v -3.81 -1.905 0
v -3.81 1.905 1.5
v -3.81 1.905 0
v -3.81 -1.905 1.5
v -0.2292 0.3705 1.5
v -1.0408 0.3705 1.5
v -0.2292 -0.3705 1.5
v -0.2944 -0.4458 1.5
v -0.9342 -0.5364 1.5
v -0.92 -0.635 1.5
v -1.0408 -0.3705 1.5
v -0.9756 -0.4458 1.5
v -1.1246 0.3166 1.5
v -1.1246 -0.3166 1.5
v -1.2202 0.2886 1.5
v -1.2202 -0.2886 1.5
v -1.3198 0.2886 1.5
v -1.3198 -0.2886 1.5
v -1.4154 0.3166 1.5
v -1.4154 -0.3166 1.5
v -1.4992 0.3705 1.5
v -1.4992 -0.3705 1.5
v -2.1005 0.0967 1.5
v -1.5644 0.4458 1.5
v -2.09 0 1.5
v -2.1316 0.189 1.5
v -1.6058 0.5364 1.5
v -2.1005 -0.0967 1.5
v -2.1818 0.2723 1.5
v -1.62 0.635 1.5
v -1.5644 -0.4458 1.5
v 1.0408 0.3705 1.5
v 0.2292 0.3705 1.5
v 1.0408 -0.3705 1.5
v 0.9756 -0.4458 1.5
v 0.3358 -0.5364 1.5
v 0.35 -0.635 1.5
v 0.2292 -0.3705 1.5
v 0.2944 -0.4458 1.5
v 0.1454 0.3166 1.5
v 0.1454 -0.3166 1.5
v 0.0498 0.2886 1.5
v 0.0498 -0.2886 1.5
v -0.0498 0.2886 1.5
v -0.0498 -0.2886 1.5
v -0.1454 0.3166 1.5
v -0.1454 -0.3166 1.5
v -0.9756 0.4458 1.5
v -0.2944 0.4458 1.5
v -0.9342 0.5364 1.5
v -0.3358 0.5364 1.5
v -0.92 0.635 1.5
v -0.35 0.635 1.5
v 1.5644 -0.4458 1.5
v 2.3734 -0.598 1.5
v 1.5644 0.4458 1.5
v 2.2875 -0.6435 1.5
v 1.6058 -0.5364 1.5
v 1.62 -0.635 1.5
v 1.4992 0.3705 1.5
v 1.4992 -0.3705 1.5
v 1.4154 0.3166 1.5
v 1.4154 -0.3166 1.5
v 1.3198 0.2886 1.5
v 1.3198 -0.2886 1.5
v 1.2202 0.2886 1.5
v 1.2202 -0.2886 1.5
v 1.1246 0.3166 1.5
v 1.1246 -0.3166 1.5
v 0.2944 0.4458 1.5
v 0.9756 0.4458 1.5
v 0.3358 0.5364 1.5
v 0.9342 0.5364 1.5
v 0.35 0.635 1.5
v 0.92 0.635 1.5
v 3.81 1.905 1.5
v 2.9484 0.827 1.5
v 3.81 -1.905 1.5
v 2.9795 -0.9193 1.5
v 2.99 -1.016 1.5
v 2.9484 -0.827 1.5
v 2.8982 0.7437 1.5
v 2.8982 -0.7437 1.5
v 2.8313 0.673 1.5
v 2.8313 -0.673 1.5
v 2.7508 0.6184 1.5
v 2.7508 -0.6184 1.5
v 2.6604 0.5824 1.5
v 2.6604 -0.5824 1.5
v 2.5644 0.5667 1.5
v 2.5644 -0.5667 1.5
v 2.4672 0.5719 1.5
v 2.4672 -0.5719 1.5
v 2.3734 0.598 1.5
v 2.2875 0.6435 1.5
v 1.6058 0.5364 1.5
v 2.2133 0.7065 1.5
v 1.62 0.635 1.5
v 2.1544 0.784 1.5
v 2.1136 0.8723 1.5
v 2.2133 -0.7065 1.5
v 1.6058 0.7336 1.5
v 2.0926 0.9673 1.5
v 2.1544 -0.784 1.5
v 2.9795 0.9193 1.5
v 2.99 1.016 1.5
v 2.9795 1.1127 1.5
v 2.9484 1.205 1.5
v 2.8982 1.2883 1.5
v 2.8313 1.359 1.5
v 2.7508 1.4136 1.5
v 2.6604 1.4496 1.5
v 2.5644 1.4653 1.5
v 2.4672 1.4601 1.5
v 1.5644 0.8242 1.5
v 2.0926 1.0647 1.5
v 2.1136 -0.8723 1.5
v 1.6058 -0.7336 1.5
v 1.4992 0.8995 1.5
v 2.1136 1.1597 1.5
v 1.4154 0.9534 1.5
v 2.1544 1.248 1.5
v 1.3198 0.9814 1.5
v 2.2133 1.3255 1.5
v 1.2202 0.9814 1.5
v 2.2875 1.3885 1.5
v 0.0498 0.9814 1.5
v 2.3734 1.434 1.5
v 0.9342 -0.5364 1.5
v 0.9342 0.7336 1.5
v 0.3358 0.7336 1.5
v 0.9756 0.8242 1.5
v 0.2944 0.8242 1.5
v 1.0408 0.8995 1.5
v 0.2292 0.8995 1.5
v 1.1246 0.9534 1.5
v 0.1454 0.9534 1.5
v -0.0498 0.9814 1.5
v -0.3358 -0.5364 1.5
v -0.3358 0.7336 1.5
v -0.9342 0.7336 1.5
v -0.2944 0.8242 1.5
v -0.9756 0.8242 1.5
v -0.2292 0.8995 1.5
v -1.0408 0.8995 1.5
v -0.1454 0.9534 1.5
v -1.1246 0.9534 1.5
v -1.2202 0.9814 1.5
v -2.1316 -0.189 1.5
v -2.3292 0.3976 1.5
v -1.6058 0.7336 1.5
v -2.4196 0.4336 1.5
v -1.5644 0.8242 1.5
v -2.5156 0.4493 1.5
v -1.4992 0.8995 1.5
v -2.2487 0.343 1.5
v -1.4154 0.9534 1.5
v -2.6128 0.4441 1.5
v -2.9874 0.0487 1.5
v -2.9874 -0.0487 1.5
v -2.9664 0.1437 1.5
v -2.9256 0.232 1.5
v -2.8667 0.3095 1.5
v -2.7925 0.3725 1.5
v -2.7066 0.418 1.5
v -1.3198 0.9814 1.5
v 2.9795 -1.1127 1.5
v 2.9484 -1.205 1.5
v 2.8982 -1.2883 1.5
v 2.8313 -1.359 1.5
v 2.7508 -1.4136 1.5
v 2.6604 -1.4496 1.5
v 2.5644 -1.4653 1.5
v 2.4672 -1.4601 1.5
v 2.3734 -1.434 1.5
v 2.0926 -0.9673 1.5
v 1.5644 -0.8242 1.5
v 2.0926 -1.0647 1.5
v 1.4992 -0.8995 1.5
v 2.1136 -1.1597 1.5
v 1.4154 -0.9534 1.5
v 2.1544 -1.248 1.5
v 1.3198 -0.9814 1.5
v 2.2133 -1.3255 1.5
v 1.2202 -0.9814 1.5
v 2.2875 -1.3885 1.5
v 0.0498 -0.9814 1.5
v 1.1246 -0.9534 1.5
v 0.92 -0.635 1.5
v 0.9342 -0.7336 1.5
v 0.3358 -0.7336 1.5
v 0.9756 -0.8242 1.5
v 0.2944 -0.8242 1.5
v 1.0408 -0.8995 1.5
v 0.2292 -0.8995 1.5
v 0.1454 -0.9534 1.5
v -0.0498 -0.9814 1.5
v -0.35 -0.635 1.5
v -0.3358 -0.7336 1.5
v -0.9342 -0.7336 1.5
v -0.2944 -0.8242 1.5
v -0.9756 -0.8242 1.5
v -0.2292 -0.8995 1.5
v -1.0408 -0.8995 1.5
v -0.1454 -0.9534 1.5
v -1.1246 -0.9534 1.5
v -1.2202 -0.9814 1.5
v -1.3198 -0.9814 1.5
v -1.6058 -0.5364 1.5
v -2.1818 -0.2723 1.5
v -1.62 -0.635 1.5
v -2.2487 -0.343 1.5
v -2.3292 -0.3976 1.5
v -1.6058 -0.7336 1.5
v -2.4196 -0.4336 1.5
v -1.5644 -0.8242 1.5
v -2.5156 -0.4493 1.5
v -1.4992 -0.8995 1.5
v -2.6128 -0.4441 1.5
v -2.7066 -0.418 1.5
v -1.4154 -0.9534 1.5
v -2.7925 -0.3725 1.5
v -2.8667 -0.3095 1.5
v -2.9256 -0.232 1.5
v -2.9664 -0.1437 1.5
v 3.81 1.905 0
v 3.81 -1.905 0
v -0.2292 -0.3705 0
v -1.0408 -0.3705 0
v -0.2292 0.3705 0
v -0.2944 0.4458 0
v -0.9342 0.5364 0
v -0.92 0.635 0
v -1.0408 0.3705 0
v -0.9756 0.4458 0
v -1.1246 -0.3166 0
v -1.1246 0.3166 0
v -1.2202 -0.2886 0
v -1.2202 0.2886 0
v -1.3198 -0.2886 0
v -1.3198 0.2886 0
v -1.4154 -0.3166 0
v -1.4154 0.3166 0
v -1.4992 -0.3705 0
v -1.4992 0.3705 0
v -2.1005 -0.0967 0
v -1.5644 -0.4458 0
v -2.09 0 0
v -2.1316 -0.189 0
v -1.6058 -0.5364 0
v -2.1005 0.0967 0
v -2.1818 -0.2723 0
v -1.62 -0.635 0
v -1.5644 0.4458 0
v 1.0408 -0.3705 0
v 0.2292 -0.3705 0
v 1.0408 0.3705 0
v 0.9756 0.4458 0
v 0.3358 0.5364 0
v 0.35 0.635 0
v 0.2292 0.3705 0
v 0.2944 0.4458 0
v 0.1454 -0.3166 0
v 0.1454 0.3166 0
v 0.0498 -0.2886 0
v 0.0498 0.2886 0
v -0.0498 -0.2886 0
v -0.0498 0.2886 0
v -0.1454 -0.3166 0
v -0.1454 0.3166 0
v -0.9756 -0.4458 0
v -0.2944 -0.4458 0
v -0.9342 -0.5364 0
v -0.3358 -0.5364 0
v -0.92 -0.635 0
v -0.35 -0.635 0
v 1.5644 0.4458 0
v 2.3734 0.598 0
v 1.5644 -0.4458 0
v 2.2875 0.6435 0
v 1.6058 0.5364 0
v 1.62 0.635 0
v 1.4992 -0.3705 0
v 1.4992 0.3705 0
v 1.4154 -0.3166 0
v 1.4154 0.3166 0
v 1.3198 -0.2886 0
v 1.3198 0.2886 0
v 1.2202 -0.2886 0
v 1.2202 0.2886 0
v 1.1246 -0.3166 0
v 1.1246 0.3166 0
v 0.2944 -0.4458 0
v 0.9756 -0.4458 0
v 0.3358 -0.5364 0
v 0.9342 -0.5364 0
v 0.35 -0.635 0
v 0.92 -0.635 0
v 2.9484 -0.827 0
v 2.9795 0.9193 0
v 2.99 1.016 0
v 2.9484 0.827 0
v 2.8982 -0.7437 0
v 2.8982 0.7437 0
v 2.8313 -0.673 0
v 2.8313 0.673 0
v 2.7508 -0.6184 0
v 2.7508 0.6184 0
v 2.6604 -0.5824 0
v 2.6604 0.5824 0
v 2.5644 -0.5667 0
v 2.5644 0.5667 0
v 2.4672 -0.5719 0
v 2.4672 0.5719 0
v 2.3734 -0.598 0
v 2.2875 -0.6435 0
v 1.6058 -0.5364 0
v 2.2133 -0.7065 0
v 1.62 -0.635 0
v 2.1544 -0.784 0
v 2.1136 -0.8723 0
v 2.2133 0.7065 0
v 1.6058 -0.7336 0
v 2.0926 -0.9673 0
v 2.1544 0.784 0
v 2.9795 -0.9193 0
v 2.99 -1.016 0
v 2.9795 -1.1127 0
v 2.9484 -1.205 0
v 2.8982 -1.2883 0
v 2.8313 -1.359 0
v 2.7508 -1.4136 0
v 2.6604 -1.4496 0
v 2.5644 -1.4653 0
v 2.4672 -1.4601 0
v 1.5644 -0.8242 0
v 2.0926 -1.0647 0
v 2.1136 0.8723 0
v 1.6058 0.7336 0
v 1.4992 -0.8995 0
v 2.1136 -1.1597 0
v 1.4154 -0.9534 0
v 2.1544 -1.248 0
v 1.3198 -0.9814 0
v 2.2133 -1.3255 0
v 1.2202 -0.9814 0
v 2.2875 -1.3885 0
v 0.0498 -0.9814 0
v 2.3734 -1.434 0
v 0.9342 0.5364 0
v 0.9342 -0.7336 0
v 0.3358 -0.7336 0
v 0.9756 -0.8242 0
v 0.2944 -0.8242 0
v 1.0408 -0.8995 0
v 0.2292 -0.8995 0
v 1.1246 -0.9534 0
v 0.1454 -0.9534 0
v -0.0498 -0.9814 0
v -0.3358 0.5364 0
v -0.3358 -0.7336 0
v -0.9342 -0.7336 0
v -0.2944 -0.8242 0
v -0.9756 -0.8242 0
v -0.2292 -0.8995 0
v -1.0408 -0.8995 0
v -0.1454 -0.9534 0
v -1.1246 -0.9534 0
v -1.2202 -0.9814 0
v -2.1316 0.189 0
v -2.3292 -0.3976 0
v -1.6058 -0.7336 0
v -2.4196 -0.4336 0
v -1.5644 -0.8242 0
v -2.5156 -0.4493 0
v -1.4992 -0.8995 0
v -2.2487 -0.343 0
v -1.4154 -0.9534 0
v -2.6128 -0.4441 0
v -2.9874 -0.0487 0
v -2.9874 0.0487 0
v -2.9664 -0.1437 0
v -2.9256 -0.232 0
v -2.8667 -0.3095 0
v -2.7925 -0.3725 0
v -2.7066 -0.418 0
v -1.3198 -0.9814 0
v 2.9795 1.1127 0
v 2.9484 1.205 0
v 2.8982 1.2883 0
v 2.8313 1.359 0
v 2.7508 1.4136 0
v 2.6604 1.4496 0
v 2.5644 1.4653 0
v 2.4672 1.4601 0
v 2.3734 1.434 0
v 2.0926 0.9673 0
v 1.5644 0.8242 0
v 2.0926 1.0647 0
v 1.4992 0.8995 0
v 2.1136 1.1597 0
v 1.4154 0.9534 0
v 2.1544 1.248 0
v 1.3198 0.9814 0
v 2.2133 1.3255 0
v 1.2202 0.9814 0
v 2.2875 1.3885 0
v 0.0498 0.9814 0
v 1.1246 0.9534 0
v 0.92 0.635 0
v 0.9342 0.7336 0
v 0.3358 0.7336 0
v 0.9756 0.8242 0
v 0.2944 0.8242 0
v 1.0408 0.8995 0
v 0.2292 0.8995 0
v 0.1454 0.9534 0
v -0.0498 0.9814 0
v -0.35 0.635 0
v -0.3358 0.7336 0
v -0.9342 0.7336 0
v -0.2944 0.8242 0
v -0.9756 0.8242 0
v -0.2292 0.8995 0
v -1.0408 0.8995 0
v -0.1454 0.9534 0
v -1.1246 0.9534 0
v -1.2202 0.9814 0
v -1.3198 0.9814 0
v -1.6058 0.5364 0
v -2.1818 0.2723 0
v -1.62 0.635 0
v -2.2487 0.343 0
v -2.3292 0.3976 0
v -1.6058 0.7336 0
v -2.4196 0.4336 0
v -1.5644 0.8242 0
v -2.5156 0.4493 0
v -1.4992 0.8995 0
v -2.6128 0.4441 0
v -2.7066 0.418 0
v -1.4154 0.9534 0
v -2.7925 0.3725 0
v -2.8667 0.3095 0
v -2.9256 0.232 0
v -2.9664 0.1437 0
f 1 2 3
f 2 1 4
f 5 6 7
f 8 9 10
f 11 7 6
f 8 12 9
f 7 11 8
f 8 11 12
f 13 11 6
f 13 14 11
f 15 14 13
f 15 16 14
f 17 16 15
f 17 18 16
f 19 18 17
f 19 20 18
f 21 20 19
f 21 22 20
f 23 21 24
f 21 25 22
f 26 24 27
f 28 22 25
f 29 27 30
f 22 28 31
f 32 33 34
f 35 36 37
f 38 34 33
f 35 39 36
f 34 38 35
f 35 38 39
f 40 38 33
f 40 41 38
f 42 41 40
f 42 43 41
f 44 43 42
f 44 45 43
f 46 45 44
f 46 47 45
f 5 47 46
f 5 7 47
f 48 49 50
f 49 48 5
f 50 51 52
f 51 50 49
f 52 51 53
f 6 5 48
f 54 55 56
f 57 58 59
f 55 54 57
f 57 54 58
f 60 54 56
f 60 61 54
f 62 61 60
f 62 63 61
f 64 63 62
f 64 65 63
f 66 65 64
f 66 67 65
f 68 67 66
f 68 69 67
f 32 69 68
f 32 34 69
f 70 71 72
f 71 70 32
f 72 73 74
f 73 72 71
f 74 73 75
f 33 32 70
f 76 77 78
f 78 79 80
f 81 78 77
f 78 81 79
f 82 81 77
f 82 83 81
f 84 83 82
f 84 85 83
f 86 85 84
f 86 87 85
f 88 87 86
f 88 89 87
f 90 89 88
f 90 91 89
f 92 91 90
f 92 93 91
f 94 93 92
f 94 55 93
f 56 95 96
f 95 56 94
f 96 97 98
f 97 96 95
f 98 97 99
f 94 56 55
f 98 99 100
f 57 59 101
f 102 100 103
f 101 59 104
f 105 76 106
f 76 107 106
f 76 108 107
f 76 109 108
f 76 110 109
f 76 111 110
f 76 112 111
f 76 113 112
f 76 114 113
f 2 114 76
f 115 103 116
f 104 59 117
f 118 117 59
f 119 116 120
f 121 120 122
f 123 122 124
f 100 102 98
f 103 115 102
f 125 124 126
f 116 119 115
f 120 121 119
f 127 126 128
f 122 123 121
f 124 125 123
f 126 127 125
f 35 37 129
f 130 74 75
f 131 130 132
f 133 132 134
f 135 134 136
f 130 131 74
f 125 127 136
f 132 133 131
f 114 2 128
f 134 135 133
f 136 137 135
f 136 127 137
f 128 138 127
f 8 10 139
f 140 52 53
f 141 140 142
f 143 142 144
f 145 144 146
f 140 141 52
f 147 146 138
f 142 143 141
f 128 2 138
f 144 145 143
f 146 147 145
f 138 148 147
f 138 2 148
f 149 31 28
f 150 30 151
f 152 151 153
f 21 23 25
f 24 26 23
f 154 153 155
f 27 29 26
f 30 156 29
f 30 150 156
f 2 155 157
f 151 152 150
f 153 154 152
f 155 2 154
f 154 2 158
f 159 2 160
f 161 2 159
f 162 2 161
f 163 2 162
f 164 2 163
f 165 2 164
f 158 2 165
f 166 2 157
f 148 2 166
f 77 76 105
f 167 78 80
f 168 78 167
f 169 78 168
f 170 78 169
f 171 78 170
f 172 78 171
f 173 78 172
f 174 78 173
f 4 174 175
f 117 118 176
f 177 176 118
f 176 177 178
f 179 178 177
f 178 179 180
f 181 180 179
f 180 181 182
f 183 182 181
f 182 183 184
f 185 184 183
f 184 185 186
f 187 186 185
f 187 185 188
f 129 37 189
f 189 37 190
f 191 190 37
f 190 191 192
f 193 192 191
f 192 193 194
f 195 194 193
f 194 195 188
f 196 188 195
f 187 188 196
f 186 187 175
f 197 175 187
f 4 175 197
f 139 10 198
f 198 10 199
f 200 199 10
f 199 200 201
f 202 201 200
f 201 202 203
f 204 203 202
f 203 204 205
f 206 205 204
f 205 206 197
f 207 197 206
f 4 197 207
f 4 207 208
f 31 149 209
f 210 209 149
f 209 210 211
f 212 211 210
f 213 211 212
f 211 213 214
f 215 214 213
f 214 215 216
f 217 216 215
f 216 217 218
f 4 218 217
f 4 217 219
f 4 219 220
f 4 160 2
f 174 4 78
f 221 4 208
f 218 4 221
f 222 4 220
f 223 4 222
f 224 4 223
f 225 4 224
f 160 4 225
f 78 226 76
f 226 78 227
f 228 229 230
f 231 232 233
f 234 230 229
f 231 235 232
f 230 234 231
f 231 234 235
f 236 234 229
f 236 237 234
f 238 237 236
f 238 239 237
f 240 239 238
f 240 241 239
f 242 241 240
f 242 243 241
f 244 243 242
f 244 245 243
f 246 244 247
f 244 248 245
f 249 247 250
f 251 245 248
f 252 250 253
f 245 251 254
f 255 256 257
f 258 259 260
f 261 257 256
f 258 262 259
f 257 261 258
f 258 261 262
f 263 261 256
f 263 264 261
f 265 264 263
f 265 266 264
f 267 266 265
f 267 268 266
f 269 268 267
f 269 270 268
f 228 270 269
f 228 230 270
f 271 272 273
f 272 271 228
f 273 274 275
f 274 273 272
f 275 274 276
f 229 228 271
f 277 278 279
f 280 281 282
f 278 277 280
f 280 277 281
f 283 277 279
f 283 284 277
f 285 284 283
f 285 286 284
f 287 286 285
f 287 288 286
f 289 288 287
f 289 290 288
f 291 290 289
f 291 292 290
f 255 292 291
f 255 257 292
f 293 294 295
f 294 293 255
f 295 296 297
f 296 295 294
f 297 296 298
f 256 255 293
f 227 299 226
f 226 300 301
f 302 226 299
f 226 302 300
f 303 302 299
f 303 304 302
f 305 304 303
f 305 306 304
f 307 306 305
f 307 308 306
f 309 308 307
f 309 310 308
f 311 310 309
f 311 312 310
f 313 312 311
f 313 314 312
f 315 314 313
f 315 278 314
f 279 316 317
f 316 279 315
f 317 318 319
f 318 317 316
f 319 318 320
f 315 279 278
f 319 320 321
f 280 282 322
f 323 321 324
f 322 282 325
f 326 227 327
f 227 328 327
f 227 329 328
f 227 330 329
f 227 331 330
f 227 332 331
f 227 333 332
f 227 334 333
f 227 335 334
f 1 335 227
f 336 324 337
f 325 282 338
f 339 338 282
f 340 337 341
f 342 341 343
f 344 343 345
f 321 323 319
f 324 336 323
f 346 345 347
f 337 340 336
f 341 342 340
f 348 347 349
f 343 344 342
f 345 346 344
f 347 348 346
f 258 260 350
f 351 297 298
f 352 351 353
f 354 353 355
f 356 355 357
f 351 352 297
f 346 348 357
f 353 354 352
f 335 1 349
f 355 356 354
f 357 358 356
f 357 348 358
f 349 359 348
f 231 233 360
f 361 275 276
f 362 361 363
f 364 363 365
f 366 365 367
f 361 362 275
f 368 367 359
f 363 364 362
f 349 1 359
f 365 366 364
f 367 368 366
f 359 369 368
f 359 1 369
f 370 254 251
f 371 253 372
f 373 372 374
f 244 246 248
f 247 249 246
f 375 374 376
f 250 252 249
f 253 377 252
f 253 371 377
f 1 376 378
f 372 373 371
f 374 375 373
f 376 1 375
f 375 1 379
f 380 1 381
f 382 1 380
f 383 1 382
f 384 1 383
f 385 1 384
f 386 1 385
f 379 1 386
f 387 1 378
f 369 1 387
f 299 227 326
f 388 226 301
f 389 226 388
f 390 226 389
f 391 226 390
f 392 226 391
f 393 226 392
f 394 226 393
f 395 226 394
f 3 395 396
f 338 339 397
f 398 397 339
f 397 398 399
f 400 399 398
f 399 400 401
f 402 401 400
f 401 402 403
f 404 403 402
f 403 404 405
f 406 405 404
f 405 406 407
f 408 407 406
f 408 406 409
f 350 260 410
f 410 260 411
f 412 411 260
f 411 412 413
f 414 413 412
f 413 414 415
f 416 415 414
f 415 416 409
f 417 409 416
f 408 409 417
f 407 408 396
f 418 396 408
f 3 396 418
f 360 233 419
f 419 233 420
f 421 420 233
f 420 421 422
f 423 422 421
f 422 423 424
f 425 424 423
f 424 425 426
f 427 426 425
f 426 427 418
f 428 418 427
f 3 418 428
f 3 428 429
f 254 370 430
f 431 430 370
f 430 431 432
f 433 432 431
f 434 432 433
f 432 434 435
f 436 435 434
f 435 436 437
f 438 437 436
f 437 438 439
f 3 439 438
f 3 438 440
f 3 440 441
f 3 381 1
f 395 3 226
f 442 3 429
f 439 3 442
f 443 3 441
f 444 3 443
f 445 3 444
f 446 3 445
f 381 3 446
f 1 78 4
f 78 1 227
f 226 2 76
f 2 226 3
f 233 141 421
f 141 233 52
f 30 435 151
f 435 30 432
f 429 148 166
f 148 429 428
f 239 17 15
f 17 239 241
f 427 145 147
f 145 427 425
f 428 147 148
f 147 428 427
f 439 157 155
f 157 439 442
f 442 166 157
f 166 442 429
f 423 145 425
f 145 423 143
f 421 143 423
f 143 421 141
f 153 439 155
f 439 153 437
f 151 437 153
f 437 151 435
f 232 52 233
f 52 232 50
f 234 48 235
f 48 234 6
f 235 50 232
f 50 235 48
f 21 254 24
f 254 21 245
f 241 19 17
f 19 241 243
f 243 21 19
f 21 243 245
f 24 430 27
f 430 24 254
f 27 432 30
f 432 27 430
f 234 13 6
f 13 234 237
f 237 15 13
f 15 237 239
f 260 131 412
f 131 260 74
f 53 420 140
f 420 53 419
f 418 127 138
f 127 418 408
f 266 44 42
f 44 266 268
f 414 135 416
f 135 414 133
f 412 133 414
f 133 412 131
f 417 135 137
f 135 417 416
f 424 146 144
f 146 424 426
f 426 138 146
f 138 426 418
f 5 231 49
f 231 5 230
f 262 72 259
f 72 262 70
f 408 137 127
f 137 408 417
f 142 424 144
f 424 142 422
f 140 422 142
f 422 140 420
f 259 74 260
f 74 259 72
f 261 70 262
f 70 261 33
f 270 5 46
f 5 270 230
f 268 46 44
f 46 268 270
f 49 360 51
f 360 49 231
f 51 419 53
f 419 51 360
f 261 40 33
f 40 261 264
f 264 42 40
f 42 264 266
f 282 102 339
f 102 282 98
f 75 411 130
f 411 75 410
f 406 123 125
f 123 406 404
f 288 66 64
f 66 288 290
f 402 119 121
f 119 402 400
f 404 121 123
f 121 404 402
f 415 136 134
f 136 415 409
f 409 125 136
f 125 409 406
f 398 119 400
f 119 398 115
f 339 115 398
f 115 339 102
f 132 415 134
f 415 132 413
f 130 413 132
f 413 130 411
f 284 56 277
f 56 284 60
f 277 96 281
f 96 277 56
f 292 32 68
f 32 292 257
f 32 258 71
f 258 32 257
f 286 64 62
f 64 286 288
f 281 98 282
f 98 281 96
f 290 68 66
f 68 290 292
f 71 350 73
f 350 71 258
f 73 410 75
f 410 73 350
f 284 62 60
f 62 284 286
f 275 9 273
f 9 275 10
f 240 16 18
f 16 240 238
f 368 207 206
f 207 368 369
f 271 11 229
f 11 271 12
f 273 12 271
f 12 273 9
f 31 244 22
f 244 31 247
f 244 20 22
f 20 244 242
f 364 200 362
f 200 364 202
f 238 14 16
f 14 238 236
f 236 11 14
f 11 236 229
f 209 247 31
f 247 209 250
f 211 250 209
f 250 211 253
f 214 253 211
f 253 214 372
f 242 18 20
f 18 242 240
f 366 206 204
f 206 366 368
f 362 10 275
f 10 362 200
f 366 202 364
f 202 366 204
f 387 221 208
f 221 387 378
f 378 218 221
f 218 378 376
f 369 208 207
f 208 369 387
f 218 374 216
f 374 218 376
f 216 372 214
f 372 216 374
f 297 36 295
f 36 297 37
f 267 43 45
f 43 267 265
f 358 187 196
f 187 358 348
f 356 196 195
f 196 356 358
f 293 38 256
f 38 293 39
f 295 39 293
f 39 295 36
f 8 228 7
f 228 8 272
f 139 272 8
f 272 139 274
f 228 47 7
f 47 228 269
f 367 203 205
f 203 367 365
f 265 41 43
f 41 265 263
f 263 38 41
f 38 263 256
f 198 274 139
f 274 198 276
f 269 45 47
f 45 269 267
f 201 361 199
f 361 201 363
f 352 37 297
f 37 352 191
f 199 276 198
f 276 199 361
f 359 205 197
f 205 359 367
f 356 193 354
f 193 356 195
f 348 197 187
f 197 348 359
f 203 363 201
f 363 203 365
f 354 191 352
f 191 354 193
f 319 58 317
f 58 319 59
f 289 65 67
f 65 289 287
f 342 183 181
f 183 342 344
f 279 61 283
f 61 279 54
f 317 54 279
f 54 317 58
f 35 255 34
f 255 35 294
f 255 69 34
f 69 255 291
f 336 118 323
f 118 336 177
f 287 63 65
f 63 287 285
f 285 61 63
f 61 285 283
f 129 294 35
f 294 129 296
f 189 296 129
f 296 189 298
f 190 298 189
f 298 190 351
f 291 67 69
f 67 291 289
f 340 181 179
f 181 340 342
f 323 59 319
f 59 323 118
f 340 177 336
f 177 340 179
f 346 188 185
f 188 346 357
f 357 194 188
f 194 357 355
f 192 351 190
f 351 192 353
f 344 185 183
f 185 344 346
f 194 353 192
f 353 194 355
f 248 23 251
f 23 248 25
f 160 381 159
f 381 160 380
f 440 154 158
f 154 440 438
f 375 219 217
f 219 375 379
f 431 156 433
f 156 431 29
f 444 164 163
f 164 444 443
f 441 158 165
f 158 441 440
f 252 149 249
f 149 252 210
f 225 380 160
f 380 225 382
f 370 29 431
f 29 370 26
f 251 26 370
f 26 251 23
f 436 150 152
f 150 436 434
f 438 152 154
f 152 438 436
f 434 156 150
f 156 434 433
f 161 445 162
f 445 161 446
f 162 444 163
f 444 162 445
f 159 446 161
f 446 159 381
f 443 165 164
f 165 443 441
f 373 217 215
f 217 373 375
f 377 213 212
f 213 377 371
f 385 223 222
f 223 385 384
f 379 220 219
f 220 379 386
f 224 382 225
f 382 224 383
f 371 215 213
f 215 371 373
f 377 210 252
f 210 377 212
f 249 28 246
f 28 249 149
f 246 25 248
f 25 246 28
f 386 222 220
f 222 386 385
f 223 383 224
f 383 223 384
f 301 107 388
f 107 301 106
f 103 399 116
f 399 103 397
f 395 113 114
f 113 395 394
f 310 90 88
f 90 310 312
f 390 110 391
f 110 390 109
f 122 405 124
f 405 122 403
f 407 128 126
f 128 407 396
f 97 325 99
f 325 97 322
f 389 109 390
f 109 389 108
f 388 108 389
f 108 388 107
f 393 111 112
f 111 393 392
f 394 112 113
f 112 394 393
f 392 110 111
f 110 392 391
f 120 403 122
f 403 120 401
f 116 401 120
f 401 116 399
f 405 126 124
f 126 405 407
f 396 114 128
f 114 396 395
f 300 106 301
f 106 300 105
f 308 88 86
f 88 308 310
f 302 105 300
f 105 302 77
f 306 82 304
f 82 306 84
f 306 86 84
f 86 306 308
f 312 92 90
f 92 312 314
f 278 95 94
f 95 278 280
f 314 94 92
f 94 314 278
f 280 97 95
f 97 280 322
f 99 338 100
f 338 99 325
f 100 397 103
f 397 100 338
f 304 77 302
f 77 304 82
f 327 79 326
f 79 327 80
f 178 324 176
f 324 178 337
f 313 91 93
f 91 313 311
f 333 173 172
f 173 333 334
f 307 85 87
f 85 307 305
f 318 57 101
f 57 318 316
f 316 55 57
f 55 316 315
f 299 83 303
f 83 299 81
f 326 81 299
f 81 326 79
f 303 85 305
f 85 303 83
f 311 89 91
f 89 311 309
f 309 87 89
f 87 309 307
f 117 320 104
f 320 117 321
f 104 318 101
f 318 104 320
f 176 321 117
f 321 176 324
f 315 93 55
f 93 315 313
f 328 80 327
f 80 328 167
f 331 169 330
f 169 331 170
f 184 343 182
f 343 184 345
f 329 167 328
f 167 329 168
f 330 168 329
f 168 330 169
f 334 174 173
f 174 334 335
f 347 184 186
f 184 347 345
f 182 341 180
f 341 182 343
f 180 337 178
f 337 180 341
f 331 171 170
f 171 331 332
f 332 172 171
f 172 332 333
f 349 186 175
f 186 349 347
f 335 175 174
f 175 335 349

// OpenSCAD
$fa = 0.1;
$fs = 0.1;

pitch = 1.27;

shellHeight = 1.5;
shellLength = pitch * 6;
shellWidth = pitch * 3;

pogoHoleDia = 0.7;
mountingHoleDia = 0.9;

// Main shell with origin on centre of shell
// with holes for pogo pins (P13-4023)
// and holes for mounting pins
difference()
{
    translate([-(shellLength/2),-(shellWidth/2),0]) cube([shellLength,shellWidth,shellHeight]);
    
    translate([-1*pitch, pitch/2, 0]) cylinder(d=pogoHoleDia, h=shellHeight);
    translate([0 *pitch, pitch/2, 0]) cylinder(d=pogoHoleDia, h=shellHeight);
    translate([1 *pitch, pitch/2, 0]) cylinder(d=pogoHoleDia, h=shellHeight);

    translate([-1*pitch, -pitch/2, 0]) cylinder(d=pogoHoleDia, h=shellHeight);
    translate([0 *pitch, -pitch/2, 0]) cylinder(d=pogoHoleDia, h=shellHeight);
    translate([1 *pitch, -pitch/2, 0]) cylinder(d=pogoHoleDia, h=shellHeight);
    
    translate([-2*pitch, 0, 0]) cylinder(d=mountingHoleDia, h=shellHeight);
    translate([2 *pitch,  1.016, 0]) cylinder(d=mountingHoleDia, h=shellHeight);
    translate([2 *pitch, -1.016, 0]) cylinder(d=mountingHoleDia, h=shellHeight);
}
